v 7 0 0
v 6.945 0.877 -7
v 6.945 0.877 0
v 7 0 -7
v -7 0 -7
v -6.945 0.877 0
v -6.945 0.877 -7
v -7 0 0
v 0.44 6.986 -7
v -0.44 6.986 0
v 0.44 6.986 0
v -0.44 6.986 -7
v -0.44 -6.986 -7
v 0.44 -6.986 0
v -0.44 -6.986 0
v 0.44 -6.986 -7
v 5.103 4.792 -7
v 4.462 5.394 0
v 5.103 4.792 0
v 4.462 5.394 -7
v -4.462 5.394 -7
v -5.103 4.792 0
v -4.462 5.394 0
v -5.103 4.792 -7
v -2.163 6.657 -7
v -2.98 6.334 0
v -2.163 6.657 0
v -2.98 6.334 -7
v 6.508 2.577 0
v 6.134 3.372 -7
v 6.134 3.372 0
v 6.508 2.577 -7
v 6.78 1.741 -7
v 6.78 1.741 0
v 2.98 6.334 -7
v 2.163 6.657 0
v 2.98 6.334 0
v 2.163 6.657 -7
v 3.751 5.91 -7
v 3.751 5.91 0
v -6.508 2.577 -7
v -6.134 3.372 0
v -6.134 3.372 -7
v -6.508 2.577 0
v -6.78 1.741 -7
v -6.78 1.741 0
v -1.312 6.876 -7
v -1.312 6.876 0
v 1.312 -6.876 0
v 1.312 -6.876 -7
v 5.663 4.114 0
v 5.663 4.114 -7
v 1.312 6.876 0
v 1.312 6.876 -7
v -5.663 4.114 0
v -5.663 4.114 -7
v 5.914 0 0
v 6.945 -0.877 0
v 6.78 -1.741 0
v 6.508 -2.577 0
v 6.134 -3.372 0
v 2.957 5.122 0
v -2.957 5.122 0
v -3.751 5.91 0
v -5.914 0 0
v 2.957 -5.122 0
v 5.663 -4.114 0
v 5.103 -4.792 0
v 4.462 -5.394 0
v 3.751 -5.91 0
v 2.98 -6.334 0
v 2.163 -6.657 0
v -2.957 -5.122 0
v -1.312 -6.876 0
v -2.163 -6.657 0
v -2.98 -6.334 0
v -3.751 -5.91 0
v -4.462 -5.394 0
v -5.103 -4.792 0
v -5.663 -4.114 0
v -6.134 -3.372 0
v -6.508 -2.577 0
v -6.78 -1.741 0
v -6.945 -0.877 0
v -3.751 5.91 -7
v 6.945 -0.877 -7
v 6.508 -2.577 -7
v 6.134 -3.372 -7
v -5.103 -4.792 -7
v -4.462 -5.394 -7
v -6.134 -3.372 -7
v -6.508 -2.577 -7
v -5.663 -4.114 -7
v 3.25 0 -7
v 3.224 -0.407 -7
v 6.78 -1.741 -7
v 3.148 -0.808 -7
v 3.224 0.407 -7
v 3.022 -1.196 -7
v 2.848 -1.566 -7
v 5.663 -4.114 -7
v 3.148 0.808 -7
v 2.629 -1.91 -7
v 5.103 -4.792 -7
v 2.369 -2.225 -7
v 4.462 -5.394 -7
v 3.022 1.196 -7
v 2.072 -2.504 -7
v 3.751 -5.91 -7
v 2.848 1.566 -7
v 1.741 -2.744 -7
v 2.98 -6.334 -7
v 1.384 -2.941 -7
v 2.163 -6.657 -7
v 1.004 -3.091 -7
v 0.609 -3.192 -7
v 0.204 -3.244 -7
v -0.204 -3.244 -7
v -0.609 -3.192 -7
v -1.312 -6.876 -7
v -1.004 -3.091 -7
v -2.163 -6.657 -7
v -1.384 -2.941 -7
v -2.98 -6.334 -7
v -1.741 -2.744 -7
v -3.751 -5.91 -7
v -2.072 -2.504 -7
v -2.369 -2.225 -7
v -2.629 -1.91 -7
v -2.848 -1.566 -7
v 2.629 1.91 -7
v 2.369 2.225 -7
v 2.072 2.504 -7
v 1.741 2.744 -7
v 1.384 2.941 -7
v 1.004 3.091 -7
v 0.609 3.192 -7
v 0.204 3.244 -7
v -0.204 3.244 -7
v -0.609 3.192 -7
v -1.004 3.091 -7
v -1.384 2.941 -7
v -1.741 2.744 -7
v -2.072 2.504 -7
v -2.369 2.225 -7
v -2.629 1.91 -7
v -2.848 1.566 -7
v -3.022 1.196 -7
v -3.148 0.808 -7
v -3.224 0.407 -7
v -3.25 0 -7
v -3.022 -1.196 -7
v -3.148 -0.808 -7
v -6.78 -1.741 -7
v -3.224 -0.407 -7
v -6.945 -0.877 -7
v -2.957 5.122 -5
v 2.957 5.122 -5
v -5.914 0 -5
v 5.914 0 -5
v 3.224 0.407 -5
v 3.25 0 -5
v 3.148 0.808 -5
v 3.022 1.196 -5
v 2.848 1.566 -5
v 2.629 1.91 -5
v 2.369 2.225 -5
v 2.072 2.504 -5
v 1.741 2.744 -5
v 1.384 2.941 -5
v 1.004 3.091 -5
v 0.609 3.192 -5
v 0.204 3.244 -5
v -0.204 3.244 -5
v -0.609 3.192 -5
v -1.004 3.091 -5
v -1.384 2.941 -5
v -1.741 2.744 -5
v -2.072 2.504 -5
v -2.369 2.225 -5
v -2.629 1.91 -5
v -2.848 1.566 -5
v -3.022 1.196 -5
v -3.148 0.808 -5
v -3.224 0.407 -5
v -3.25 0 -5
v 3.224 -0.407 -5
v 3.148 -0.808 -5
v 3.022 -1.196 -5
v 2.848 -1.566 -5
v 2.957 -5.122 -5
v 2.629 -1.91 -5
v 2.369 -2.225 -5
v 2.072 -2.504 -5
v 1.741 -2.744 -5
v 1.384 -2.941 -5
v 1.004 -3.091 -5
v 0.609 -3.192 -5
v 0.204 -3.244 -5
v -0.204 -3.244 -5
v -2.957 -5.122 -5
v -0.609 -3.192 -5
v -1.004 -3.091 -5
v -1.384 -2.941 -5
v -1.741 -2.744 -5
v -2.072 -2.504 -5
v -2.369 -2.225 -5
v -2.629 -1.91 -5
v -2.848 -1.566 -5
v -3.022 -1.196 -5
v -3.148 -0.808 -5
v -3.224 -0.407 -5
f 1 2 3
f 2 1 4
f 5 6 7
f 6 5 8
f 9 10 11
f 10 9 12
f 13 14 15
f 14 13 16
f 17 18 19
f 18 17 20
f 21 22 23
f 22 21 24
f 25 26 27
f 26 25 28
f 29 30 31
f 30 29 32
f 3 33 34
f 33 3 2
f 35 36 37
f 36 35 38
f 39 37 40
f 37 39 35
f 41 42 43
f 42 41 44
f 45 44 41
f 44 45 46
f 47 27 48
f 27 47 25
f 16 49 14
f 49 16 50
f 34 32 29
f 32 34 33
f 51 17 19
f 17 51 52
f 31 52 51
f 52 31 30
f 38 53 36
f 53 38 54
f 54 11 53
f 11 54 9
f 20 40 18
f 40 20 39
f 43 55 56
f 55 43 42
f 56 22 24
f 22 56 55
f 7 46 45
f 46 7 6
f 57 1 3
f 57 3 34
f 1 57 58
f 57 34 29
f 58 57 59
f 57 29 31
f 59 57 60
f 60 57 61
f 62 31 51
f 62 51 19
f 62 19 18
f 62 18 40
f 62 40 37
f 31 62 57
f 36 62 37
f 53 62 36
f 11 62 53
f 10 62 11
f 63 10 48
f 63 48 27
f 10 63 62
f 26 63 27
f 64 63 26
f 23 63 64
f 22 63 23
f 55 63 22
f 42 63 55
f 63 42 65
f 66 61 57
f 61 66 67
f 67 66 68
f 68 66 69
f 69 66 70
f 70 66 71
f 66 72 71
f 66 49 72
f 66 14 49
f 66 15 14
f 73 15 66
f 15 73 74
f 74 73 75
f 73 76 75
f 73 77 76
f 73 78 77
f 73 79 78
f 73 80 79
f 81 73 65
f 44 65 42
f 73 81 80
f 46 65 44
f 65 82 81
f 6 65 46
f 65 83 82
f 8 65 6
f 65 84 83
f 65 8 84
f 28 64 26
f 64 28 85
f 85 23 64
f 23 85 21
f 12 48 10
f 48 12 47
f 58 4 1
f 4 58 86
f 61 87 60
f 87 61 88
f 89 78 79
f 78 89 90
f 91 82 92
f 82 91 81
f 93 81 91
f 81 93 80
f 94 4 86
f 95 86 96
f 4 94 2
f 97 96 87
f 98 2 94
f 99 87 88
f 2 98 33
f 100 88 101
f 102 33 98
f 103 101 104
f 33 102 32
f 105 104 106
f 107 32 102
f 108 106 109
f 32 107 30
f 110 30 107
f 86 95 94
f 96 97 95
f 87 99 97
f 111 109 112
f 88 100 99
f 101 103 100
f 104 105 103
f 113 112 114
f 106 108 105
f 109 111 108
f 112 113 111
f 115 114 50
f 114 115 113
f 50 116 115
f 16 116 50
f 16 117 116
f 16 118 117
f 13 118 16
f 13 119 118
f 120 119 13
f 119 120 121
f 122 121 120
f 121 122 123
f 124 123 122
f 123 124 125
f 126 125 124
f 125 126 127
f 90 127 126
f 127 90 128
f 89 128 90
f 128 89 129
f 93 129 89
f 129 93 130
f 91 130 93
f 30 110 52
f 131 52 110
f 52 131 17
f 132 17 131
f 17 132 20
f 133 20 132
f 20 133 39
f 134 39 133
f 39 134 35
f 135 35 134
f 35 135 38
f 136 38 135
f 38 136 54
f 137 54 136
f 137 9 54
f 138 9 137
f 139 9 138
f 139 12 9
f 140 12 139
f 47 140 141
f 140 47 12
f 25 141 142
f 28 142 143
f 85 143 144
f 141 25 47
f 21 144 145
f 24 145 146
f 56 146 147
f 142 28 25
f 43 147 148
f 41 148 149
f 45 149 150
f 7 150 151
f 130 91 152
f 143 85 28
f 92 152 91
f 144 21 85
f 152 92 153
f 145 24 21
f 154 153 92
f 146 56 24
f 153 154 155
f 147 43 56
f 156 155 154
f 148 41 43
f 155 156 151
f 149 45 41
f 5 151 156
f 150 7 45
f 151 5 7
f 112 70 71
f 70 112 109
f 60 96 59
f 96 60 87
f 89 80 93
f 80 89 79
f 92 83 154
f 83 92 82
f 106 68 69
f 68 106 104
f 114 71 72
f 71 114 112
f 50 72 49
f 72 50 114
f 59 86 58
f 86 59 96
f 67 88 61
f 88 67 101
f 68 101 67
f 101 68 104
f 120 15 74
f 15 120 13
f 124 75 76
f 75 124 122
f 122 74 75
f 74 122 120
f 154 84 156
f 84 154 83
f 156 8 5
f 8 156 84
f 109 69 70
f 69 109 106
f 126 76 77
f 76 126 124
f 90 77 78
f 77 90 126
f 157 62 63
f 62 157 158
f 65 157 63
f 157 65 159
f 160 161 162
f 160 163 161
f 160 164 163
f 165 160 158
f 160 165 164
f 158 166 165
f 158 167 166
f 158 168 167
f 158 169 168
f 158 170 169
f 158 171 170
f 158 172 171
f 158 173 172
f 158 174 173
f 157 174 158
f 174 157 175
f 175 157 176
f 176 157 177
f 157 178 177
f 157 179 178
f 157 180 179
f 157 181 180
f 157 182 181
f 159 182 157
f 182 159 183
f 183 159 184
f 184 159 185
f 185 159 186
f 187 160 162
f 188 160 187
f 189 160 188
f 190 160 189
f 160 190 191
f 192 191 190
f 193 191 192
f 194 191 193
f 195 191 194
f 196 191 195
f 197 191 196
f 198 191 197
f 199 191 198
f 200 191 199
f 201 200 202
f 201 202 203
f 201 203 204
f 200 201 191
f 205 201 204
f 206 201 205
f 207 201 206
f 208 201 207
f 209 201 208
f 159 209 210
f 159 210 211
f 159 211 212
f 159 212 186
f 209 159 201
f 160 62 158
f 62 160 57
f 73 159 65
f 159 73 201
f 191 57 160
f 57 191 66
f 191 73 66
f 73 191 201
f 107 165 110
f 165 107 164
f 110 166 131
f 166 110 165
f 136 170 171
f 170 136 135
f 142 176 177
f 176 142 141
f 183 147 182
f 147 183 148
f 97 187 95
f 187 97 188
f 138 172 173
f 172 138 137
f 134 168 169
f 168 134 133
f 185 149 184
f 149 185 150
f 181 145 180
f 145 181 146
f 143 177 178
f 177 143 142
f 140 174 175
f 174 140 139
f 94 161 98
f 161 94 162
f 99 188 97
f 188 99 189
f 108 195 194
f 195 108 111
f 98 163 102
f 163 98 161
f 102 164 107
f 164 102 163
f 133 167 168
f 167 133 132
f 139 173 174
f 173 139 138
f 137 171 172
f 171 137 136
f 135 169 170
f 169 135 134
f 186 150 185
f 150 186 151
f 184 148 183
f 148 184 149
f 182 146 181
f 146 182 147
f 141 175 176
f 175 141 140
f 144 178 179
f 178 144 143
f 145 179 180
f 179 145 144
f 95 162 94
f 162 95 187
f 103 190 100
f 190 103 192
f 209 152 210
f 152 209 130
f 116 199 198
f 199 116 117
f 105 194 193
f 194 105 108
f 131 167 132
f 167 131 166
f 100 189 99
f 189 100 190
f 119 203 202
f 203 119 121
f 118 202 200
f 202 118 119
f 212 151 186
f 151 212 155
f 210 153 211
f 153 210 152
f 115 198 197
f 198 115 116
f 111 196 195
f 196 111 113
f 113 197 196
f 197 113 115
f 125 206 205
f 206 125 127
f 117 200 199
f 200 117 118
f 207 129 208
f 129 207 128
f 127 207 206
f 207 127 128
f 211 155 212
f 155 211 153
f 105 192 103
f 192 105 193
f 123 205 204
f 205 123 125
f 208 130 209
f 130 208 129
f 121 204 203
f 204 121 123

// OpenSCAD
$fn = 50;


difference() {
	union() {
		translate(v = [0, 0, -7.0000000000]) {
			cylinder(h = 7.0000000000, r = 7.0000000000);
		}
		translate(v = [0, 0, -8.5000000000]) {
			cylinder(h = 8.5000000000, r = 2.8750000000);
		}
	}
	union() {
		translate(v = [0, 0, 0]) {
			rotate(a = [0, 0, 0]) {
				difference() {
					union() {
						translate(v = [0, 0, -5]) {
							linear_extrude(height = 5) {
								polygon(points = [[5.9142500000, 0.0000000000], [2.9571250000, 5.1218907443], [-2.9571250000, 5.1218907443], [-5.9142500000, 0.0000000000], [-2.9571250000, -5.1218907443], [2.9571250000, -5.1218907443]]);
							}
						}
					}
					union();
				}
			}
		}
		#translate(v = [0, 0, -100.0000000000]) {
			cylinder(h = 200, r = 3.2500000000);
		}
	}
}
